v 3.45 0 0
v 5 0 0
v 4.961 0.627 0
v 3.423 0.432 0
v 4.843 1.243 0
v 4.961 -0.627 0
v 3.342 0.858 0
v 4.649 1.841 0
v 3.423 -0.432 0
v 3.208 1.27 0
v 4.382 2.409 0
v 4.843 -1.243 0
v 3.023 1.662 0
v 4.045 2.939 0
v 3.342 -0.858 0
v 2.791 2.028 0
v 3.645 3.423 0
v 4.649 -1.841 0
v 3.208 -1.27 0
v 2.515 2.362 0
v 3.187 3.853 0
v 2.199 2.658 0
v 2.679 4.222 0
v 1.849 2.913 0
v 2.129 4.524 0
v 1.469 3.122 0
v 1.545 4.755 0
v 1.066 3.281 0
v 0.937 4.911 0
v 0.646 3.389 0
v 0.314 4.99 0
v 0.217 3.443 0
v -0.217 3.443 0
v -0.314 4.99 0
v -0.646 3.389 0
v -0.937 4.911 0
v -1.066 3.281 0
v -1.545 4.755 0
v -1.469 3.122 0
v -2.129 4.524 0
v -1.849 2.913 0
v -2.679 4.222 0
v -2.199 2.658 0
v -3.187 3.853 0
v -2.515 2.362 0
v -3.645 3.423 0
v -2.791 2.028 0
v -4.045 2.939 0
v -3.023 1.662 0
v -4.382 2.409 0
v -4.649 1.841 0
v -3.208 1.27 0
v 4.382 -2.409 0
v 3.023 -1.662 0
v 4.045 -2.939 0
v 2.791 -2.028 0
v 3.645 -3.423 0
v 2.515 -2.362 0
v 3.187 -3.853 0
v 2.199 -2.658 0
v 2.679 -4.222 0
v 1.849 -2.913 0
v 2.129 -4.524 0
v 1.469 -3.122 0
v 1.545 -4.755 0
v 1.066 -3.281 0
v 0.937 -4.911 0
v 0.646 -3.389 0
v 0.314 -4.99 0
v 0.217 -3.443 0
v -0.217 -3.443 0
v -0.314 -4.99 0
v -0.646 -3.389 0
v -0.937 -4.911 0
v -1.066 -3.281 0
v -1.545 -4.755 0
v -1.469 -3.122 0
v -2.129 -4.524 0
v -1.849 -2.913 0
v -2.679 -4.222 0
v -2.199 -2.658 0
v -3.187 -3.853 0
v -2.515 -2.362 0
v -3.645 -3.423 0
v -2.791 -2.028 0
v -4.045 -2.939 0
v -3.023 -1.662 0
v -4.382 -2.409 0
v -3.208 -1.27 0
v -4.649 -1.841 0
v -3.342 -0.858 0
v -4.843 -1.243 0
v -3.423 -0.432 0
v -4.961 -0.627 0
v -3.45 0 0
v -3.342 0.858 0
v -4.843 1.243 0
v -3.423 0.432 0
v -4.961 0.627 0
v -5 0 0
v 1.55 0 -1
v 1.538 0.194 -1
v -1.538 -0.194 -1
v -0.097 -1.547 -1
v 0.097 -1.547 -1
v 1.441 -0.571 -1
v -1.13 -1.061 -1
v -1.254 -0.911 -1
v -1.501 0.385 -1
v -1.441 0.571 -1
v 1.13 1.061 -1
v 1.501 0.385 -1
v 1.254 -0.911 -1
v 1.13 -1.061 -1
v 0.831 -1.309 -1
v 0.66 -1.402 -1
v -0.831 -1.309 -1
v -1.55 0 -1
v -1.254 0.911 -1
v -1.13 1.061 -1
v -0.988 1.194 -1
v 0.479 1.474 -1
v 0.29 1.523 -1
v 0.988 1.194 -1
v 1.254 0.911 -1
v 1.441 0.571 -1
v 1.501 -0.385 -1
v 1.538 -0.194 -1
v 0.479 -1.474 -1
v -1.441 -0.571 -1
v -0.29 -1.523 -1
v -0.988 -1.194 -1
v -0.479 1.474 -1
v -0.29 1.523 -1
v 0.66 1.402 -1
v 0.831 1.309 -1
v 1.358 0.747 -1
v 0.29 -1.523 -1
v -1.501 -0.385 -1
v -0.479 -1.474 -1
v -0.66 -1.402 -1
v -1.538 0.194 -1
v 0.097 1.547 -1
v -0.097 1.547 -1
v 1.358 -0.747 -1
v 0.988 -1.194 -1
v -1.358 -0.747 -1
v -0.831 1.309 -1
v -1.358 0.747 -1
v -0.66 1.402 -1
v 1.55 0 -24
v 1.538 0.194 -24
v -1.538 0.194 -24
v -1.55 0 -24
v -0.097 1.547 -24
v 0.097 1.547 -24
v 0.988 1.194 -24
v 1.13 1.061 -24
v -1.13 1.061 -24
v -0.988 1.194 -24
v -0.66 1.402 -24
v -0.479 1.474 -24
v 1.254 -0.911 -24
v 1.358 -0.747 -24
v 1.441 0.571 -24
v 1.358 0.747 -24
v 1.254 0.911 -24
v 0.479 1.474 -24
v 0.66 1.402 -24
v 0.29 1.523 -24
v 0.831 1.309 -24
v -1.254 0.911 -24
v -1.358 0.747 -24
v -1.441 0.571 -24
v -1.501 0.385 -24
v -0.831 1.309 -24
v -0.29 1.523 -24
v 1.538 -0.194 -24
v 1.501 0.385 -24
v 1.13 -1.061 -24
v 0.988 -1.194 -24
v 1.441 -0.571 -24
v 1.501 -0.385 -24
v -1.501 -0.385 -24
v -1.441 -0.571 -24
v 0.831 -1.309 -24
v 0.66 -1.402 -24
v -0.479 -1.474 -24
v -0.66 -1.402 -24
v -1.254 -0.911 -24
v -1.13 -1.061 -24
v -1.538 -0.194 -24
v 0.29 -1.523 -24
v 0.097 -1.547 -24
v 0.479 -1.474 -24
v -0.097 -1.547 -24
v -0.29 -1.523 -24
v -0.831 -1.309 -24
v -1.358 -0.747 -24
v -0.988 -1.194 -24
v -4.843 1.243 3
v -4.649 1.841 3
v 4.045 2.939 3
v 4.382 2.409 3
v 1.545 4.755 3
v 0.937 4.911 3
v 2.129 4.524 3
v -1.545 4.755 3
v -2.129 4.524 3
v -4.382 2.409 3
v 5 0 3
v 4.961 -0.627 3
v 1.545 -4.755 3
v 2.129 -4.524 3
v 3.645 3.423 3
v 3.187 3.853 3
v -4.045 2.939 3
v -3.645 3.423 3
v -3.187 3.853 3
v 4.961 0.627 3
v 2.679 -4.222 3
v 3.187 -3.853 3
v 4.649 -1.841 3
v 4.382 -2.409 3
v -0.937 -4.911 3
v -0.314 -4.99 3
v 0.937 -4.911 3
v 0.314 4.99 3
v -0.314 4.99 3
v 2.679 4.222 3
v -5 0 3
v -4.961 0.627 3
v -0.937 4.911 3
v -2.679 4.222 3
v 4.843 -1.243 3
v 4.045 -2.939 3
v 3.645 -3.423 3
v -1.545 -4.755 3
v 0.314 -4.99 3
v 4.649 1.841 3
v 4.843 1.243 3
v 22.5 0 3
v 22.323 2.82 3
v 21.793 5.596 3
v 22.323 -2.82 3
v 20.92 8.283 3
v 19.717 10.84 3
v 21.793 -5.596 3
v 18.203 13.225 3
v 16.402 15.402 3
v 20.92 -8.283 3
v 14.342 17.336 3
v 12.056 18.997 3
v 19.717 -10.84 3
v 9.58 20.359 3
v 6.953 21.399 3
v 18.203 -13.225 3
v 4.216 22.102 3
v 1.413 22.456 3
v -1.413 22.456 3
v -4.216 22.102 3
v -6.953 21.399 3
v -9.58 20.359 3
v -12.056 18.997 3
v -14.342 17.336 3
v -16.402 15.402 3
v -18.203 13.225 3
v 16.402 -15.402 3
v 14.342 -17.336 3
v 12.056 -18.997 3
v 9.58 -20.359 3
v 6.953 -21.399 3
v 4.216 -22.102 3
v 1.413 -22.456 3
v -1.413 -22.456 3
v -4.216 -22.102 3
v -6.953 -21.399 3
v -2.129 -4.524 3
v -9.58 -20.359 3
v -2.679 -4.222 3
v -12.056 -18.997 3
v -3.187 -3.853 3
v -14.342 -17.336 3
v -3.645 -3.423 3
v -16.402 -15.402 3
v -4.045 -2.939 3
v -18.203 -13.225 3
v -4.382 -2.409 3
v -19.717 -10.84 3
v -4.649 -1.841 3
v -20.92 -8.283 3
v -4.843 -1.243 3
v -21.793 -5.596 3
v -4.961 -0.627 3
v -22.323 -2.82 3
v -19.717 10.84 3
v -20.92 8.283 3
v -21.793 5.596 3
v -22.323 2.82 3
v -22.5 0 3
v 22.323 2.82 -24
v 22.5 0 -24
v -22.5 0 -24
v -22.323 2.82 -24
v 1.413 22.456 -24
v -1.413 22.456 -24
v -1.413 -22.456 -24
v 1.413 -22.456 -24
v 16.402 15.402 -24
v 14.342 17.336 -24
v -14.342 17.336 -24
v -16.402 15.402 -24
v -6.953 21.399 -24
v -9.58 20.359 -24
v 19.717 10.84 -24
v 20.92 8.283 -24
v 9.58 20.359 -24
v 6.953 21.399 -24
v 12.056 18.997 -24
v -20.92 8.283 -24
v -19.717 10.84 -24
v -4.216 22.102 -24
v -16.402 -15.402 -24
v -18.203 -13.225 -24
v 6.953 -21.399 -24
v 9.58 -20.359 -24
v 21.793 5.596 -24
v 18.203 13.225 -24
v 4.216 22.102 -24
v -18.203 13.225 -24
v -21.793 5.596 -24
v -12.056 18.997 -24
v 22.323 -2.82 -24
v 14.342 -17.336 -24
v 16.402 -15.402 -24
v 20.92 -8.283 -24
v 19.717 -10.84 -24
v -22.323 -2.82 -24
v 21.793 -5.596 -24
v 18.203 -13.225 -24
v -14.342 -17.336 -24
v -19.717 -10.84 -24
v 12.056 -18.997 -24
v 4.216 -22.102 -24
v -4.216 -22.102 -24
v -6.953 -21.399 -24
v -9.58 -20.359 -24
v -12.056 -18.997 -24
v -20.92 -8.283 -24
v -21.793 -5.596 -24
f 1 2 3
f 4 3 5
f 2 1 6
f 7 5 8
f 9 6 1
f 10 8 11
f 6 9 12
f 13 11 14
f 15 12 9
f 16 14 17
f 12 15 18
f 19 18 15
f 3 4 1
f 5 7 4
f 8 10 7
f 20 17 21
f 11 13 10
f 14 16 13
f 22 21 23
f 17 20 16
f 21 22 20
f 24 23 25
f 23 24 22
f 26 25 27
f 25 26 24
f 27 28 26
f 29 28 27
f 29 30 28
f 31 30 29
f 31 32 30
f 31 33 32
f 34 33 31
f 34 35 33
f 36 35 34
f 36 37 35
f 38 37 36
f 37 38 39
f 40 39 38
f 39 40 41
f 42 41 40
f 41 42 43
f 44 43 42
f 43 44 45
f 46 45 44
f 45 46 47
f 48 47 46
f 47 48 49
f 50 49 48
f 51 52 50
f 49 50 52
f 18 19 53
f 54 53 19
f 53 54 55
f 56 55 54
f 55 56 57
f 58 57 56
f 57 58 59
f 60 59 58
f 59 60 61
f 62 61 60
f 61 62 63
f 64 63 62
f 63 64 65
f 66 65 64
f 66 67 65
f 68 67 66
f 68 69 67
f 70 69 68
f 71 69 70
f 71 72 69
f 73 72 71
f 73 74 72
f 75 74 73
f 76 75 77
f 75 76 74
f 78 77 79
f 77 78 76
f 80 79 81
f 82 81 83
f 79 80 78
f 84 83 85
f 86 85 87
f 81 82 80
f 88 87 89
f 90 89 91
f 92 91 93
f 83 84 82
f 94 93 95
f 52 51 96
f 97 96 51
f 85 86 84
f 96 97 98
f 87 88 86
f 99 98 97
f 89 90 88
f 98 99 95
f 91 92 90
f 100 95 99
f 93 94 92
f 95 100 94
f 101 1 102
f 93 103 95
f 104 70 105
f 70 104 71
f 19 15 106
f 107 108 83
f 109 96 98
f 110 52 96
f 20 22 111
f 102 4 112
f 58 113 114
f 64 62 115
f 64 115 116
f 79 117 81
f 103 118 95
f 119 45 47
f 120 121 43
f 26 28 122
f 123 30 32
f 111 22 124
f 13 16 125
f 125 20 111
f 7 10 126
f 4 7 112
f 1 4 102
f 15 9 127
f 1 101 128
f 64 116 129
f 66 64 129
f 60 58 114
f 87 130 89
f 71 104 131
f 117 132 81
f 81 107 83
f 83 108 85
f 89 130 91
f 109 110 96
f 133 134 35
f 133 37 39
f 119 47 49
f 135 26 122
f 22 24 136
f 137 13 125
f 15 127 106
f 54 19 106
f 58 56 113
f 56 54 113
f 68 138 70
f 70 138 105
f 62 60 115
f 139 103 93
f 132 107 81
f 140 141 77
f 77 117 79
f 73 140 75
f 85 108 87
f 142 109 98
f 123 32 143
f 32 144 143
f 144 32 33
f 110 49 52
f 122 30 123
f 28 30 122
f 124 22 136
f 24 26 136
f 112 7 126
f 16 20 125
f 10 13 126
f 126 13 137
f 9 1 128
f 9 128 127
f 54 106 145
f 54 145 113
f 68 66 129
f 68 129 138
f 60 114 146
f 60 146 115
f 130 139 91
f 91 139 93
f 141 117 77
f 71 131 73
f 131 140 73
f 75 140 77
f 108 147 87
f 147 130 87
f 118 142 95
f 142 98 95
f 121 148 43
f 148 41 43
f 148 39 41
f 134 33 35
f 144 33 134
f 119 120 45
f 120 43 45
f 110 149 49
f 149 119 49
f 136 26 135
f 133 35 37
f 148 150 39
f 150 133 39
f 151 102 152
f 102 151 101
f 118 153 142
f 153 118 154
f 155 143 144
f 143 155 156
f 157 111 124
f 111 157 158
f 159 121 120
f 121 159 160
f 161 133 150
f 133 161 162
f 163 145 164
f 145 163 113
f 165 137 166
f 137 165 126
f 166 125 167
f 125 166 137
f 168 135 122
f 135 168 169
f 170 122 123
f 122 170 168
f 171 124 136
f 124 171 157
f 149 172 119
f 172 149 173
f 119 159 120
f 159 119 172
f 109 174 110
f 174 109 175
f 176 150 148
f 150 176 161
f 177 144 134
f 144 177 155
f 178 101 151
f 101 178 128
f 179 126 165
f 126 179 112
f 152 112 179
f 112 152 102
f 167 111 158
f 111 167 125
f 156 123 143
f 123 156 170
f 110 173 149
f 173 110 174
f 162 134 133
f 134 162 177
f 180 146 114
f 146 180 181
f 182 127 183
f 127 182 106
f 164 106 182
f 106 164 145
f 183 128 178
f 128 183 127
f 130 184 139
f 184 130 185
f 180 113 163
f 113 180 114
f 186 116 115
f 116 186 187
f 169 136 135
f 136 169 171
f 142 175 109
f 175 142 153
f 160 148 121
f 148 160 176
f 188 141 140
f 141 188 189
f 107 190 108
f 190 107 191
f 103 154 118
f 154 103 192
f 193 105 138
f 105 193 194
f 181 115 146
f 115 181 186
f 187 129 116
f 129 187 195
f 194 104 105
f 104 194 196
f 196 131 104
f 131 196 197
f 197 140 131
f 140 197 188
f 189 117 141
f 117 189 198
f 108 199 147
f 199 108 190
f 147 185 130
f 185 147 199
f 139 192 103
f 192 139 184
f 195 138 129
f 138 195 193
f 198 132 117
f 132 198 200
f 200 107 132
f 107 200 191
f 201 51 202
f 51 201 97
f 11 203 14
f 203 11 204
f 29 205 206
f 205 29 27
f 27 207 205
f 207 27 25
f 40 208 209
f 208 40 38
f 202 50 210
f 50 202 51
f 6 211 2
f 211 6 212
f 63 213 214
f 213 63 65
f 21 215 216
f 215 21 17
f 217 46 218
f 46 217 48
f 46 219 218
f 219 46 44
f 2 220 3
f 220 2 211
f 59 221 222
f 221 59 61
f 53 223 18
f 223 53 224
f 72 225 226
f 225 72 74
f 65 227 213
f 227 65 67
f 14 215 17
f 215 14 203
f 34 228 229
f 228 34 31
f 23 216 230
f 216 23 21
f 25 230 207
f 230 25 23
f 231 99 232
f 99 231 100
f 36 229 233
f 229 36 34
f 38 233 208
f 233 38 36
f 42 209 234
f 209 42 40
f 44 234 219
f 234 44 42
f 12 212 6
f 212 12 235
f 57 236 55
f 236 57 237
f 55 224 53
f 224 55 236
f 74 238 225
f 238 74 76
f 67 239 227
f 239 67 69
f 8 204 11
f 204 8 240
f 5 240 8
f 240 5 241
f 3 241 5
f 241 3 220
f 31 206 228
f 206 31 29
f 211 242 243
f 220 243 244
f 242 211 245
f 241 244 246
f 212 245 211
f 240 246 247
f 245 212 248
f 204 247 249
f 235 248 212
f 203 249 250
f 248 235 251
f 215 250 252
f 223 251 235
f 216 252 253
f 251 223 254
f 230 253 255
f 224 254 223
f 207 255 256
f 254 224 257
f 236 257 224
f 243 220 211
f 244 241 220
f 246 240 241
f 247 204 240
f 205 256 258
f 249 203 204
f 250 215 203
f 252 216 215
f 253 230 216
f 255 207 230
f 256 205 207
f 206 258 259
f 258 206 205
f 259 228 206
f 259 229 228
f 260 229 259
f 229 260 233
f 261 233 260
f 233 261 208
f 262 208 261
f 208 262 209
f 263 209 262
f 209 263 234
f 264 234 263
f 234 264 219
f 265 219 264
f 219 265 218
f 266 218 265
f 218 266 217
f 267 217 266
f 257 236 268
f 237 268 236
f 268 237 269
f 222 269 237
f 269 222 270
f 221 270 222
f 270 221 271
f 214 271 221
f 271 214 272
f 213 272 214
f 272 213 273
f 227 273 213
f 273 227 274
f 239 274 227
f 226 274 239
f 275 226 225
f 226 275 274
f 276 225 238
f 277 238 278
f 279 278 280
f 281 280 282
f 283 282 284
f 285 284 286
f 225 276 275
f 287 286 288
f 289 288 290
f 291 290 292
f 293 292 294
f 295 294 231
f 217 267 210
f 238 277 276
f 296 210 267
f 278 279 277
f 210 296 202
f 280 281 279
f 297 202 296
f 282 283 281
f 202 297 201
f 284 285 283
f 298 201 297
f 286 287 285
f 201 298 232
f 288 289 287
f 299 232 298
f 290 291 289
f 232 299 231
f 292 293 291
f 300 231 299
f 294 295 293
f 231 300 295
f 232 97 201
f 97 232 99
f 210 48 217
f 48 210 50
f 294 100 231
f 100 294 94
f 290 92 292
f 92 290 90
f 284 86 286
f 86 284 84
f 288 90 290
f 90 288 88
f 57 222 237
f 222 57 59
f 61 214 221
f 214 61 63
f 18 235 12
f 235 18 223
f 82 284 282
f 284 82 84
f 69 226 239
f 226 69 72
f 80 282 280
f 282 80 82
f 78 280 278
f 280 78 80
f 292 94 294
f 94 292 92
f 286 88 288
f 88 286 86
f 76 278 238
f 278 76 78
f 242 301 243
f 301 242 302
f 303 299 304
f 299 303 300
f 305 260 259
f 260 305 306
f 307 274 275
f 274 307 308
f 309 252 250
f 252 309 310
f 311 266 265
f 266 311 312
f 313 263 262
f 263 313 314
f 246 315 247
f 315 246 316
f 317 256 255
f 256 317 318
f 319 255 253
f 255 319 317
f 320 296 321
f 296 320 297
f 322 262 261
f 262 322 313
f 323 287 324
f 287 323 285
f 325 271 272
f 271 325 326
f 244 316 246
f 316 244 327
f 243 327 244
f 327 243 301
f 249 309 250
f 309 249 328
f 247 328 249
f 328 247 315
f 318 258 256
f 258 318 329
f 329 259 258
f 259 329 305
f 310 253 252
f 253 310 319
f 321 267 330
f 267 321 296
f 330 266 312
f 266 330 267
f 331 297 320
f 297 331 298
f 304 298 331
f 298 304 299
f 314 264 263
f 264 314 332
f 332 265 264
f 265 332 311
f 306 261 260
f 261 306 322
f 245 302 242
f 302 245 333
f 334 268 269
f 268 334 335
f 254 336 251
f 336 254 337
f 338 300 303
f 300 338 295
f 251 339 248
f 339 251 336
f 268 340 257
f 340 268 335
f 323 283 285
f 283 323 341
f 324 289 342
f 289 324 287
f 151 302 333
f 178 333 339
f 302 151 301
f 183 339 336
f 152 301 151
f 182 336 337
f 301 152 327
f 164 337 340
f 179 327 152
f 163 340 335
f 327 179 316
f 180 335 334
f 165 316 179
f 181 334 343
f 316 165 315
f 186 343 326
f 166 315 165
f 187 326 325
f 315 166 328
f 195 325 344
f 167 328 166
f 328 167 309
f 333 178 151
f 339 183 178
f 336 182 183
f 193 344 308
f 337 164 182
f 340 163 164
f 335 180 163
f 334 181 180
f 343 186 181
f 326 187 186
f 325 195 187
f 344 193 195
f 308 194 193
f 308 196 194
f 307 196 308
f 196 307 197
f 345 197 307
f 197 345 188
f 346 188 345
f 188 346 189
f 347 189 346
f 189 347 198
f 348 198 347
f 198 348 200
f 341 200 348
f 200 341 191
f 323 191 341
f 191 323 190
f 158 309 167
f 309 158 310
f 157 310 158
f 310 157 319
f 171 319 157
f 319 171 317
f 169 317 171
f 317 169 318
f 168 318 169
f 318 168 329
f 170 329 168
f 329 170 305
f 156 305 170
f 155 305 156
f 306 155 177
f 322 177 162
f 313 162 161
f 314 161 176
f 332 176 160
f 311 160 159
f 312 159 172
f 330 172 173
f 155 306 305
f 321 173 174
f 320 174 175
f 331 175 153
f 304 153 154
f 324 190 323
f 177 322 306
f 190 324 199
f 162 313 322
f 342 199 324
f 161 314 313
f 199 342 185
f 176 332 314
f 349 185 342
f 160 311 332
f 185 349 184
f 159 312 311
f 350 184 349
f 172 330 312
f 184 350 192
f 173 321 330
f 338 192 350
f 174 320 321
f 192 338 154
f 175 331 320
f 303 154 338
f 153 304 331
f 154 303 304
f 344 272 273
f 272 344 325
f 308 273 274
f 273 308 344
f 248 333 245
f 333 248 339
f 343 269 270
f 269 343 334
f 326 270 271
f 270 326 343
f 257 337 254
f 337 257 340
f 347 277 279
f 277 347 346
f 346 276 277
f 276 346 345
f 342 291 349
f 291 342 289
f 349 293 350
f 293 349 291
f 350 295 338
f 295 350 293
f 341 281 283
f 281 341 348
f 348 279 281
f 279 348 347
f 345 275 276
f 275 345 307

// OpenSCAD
$fn = 50;

difference() {
	union() {
		translate(v = [0, 0, -24.0]) {
			cylinder(h = 27, r = 22.5);
		}
	}
	union() {
		translate(v = [0, 0, 0]) {
			rotate(a = [0, 0, 0]) {
				difference() {
					union() {
						translate(v = [0, 0, -27.0]) {
							cylinder(h = 27, r = 1.25);
						}
						translate(v = [0, 0, -1.0]) {
							cylinder(h = 1.0, r1 = 1.55, r2 = 3.45);
						}
						translate(v = [0, 0, -27.0]) {
							cylinder(h = 27, r = 1.55);
						}
						translate(v = [0, 0, -27.0]) {
							cylinder(h = 27, r = 1.25);
						}
					}
					union();
				}
			}
		}
		#cylinder(h = 3, r = 5.0);
	}
}
